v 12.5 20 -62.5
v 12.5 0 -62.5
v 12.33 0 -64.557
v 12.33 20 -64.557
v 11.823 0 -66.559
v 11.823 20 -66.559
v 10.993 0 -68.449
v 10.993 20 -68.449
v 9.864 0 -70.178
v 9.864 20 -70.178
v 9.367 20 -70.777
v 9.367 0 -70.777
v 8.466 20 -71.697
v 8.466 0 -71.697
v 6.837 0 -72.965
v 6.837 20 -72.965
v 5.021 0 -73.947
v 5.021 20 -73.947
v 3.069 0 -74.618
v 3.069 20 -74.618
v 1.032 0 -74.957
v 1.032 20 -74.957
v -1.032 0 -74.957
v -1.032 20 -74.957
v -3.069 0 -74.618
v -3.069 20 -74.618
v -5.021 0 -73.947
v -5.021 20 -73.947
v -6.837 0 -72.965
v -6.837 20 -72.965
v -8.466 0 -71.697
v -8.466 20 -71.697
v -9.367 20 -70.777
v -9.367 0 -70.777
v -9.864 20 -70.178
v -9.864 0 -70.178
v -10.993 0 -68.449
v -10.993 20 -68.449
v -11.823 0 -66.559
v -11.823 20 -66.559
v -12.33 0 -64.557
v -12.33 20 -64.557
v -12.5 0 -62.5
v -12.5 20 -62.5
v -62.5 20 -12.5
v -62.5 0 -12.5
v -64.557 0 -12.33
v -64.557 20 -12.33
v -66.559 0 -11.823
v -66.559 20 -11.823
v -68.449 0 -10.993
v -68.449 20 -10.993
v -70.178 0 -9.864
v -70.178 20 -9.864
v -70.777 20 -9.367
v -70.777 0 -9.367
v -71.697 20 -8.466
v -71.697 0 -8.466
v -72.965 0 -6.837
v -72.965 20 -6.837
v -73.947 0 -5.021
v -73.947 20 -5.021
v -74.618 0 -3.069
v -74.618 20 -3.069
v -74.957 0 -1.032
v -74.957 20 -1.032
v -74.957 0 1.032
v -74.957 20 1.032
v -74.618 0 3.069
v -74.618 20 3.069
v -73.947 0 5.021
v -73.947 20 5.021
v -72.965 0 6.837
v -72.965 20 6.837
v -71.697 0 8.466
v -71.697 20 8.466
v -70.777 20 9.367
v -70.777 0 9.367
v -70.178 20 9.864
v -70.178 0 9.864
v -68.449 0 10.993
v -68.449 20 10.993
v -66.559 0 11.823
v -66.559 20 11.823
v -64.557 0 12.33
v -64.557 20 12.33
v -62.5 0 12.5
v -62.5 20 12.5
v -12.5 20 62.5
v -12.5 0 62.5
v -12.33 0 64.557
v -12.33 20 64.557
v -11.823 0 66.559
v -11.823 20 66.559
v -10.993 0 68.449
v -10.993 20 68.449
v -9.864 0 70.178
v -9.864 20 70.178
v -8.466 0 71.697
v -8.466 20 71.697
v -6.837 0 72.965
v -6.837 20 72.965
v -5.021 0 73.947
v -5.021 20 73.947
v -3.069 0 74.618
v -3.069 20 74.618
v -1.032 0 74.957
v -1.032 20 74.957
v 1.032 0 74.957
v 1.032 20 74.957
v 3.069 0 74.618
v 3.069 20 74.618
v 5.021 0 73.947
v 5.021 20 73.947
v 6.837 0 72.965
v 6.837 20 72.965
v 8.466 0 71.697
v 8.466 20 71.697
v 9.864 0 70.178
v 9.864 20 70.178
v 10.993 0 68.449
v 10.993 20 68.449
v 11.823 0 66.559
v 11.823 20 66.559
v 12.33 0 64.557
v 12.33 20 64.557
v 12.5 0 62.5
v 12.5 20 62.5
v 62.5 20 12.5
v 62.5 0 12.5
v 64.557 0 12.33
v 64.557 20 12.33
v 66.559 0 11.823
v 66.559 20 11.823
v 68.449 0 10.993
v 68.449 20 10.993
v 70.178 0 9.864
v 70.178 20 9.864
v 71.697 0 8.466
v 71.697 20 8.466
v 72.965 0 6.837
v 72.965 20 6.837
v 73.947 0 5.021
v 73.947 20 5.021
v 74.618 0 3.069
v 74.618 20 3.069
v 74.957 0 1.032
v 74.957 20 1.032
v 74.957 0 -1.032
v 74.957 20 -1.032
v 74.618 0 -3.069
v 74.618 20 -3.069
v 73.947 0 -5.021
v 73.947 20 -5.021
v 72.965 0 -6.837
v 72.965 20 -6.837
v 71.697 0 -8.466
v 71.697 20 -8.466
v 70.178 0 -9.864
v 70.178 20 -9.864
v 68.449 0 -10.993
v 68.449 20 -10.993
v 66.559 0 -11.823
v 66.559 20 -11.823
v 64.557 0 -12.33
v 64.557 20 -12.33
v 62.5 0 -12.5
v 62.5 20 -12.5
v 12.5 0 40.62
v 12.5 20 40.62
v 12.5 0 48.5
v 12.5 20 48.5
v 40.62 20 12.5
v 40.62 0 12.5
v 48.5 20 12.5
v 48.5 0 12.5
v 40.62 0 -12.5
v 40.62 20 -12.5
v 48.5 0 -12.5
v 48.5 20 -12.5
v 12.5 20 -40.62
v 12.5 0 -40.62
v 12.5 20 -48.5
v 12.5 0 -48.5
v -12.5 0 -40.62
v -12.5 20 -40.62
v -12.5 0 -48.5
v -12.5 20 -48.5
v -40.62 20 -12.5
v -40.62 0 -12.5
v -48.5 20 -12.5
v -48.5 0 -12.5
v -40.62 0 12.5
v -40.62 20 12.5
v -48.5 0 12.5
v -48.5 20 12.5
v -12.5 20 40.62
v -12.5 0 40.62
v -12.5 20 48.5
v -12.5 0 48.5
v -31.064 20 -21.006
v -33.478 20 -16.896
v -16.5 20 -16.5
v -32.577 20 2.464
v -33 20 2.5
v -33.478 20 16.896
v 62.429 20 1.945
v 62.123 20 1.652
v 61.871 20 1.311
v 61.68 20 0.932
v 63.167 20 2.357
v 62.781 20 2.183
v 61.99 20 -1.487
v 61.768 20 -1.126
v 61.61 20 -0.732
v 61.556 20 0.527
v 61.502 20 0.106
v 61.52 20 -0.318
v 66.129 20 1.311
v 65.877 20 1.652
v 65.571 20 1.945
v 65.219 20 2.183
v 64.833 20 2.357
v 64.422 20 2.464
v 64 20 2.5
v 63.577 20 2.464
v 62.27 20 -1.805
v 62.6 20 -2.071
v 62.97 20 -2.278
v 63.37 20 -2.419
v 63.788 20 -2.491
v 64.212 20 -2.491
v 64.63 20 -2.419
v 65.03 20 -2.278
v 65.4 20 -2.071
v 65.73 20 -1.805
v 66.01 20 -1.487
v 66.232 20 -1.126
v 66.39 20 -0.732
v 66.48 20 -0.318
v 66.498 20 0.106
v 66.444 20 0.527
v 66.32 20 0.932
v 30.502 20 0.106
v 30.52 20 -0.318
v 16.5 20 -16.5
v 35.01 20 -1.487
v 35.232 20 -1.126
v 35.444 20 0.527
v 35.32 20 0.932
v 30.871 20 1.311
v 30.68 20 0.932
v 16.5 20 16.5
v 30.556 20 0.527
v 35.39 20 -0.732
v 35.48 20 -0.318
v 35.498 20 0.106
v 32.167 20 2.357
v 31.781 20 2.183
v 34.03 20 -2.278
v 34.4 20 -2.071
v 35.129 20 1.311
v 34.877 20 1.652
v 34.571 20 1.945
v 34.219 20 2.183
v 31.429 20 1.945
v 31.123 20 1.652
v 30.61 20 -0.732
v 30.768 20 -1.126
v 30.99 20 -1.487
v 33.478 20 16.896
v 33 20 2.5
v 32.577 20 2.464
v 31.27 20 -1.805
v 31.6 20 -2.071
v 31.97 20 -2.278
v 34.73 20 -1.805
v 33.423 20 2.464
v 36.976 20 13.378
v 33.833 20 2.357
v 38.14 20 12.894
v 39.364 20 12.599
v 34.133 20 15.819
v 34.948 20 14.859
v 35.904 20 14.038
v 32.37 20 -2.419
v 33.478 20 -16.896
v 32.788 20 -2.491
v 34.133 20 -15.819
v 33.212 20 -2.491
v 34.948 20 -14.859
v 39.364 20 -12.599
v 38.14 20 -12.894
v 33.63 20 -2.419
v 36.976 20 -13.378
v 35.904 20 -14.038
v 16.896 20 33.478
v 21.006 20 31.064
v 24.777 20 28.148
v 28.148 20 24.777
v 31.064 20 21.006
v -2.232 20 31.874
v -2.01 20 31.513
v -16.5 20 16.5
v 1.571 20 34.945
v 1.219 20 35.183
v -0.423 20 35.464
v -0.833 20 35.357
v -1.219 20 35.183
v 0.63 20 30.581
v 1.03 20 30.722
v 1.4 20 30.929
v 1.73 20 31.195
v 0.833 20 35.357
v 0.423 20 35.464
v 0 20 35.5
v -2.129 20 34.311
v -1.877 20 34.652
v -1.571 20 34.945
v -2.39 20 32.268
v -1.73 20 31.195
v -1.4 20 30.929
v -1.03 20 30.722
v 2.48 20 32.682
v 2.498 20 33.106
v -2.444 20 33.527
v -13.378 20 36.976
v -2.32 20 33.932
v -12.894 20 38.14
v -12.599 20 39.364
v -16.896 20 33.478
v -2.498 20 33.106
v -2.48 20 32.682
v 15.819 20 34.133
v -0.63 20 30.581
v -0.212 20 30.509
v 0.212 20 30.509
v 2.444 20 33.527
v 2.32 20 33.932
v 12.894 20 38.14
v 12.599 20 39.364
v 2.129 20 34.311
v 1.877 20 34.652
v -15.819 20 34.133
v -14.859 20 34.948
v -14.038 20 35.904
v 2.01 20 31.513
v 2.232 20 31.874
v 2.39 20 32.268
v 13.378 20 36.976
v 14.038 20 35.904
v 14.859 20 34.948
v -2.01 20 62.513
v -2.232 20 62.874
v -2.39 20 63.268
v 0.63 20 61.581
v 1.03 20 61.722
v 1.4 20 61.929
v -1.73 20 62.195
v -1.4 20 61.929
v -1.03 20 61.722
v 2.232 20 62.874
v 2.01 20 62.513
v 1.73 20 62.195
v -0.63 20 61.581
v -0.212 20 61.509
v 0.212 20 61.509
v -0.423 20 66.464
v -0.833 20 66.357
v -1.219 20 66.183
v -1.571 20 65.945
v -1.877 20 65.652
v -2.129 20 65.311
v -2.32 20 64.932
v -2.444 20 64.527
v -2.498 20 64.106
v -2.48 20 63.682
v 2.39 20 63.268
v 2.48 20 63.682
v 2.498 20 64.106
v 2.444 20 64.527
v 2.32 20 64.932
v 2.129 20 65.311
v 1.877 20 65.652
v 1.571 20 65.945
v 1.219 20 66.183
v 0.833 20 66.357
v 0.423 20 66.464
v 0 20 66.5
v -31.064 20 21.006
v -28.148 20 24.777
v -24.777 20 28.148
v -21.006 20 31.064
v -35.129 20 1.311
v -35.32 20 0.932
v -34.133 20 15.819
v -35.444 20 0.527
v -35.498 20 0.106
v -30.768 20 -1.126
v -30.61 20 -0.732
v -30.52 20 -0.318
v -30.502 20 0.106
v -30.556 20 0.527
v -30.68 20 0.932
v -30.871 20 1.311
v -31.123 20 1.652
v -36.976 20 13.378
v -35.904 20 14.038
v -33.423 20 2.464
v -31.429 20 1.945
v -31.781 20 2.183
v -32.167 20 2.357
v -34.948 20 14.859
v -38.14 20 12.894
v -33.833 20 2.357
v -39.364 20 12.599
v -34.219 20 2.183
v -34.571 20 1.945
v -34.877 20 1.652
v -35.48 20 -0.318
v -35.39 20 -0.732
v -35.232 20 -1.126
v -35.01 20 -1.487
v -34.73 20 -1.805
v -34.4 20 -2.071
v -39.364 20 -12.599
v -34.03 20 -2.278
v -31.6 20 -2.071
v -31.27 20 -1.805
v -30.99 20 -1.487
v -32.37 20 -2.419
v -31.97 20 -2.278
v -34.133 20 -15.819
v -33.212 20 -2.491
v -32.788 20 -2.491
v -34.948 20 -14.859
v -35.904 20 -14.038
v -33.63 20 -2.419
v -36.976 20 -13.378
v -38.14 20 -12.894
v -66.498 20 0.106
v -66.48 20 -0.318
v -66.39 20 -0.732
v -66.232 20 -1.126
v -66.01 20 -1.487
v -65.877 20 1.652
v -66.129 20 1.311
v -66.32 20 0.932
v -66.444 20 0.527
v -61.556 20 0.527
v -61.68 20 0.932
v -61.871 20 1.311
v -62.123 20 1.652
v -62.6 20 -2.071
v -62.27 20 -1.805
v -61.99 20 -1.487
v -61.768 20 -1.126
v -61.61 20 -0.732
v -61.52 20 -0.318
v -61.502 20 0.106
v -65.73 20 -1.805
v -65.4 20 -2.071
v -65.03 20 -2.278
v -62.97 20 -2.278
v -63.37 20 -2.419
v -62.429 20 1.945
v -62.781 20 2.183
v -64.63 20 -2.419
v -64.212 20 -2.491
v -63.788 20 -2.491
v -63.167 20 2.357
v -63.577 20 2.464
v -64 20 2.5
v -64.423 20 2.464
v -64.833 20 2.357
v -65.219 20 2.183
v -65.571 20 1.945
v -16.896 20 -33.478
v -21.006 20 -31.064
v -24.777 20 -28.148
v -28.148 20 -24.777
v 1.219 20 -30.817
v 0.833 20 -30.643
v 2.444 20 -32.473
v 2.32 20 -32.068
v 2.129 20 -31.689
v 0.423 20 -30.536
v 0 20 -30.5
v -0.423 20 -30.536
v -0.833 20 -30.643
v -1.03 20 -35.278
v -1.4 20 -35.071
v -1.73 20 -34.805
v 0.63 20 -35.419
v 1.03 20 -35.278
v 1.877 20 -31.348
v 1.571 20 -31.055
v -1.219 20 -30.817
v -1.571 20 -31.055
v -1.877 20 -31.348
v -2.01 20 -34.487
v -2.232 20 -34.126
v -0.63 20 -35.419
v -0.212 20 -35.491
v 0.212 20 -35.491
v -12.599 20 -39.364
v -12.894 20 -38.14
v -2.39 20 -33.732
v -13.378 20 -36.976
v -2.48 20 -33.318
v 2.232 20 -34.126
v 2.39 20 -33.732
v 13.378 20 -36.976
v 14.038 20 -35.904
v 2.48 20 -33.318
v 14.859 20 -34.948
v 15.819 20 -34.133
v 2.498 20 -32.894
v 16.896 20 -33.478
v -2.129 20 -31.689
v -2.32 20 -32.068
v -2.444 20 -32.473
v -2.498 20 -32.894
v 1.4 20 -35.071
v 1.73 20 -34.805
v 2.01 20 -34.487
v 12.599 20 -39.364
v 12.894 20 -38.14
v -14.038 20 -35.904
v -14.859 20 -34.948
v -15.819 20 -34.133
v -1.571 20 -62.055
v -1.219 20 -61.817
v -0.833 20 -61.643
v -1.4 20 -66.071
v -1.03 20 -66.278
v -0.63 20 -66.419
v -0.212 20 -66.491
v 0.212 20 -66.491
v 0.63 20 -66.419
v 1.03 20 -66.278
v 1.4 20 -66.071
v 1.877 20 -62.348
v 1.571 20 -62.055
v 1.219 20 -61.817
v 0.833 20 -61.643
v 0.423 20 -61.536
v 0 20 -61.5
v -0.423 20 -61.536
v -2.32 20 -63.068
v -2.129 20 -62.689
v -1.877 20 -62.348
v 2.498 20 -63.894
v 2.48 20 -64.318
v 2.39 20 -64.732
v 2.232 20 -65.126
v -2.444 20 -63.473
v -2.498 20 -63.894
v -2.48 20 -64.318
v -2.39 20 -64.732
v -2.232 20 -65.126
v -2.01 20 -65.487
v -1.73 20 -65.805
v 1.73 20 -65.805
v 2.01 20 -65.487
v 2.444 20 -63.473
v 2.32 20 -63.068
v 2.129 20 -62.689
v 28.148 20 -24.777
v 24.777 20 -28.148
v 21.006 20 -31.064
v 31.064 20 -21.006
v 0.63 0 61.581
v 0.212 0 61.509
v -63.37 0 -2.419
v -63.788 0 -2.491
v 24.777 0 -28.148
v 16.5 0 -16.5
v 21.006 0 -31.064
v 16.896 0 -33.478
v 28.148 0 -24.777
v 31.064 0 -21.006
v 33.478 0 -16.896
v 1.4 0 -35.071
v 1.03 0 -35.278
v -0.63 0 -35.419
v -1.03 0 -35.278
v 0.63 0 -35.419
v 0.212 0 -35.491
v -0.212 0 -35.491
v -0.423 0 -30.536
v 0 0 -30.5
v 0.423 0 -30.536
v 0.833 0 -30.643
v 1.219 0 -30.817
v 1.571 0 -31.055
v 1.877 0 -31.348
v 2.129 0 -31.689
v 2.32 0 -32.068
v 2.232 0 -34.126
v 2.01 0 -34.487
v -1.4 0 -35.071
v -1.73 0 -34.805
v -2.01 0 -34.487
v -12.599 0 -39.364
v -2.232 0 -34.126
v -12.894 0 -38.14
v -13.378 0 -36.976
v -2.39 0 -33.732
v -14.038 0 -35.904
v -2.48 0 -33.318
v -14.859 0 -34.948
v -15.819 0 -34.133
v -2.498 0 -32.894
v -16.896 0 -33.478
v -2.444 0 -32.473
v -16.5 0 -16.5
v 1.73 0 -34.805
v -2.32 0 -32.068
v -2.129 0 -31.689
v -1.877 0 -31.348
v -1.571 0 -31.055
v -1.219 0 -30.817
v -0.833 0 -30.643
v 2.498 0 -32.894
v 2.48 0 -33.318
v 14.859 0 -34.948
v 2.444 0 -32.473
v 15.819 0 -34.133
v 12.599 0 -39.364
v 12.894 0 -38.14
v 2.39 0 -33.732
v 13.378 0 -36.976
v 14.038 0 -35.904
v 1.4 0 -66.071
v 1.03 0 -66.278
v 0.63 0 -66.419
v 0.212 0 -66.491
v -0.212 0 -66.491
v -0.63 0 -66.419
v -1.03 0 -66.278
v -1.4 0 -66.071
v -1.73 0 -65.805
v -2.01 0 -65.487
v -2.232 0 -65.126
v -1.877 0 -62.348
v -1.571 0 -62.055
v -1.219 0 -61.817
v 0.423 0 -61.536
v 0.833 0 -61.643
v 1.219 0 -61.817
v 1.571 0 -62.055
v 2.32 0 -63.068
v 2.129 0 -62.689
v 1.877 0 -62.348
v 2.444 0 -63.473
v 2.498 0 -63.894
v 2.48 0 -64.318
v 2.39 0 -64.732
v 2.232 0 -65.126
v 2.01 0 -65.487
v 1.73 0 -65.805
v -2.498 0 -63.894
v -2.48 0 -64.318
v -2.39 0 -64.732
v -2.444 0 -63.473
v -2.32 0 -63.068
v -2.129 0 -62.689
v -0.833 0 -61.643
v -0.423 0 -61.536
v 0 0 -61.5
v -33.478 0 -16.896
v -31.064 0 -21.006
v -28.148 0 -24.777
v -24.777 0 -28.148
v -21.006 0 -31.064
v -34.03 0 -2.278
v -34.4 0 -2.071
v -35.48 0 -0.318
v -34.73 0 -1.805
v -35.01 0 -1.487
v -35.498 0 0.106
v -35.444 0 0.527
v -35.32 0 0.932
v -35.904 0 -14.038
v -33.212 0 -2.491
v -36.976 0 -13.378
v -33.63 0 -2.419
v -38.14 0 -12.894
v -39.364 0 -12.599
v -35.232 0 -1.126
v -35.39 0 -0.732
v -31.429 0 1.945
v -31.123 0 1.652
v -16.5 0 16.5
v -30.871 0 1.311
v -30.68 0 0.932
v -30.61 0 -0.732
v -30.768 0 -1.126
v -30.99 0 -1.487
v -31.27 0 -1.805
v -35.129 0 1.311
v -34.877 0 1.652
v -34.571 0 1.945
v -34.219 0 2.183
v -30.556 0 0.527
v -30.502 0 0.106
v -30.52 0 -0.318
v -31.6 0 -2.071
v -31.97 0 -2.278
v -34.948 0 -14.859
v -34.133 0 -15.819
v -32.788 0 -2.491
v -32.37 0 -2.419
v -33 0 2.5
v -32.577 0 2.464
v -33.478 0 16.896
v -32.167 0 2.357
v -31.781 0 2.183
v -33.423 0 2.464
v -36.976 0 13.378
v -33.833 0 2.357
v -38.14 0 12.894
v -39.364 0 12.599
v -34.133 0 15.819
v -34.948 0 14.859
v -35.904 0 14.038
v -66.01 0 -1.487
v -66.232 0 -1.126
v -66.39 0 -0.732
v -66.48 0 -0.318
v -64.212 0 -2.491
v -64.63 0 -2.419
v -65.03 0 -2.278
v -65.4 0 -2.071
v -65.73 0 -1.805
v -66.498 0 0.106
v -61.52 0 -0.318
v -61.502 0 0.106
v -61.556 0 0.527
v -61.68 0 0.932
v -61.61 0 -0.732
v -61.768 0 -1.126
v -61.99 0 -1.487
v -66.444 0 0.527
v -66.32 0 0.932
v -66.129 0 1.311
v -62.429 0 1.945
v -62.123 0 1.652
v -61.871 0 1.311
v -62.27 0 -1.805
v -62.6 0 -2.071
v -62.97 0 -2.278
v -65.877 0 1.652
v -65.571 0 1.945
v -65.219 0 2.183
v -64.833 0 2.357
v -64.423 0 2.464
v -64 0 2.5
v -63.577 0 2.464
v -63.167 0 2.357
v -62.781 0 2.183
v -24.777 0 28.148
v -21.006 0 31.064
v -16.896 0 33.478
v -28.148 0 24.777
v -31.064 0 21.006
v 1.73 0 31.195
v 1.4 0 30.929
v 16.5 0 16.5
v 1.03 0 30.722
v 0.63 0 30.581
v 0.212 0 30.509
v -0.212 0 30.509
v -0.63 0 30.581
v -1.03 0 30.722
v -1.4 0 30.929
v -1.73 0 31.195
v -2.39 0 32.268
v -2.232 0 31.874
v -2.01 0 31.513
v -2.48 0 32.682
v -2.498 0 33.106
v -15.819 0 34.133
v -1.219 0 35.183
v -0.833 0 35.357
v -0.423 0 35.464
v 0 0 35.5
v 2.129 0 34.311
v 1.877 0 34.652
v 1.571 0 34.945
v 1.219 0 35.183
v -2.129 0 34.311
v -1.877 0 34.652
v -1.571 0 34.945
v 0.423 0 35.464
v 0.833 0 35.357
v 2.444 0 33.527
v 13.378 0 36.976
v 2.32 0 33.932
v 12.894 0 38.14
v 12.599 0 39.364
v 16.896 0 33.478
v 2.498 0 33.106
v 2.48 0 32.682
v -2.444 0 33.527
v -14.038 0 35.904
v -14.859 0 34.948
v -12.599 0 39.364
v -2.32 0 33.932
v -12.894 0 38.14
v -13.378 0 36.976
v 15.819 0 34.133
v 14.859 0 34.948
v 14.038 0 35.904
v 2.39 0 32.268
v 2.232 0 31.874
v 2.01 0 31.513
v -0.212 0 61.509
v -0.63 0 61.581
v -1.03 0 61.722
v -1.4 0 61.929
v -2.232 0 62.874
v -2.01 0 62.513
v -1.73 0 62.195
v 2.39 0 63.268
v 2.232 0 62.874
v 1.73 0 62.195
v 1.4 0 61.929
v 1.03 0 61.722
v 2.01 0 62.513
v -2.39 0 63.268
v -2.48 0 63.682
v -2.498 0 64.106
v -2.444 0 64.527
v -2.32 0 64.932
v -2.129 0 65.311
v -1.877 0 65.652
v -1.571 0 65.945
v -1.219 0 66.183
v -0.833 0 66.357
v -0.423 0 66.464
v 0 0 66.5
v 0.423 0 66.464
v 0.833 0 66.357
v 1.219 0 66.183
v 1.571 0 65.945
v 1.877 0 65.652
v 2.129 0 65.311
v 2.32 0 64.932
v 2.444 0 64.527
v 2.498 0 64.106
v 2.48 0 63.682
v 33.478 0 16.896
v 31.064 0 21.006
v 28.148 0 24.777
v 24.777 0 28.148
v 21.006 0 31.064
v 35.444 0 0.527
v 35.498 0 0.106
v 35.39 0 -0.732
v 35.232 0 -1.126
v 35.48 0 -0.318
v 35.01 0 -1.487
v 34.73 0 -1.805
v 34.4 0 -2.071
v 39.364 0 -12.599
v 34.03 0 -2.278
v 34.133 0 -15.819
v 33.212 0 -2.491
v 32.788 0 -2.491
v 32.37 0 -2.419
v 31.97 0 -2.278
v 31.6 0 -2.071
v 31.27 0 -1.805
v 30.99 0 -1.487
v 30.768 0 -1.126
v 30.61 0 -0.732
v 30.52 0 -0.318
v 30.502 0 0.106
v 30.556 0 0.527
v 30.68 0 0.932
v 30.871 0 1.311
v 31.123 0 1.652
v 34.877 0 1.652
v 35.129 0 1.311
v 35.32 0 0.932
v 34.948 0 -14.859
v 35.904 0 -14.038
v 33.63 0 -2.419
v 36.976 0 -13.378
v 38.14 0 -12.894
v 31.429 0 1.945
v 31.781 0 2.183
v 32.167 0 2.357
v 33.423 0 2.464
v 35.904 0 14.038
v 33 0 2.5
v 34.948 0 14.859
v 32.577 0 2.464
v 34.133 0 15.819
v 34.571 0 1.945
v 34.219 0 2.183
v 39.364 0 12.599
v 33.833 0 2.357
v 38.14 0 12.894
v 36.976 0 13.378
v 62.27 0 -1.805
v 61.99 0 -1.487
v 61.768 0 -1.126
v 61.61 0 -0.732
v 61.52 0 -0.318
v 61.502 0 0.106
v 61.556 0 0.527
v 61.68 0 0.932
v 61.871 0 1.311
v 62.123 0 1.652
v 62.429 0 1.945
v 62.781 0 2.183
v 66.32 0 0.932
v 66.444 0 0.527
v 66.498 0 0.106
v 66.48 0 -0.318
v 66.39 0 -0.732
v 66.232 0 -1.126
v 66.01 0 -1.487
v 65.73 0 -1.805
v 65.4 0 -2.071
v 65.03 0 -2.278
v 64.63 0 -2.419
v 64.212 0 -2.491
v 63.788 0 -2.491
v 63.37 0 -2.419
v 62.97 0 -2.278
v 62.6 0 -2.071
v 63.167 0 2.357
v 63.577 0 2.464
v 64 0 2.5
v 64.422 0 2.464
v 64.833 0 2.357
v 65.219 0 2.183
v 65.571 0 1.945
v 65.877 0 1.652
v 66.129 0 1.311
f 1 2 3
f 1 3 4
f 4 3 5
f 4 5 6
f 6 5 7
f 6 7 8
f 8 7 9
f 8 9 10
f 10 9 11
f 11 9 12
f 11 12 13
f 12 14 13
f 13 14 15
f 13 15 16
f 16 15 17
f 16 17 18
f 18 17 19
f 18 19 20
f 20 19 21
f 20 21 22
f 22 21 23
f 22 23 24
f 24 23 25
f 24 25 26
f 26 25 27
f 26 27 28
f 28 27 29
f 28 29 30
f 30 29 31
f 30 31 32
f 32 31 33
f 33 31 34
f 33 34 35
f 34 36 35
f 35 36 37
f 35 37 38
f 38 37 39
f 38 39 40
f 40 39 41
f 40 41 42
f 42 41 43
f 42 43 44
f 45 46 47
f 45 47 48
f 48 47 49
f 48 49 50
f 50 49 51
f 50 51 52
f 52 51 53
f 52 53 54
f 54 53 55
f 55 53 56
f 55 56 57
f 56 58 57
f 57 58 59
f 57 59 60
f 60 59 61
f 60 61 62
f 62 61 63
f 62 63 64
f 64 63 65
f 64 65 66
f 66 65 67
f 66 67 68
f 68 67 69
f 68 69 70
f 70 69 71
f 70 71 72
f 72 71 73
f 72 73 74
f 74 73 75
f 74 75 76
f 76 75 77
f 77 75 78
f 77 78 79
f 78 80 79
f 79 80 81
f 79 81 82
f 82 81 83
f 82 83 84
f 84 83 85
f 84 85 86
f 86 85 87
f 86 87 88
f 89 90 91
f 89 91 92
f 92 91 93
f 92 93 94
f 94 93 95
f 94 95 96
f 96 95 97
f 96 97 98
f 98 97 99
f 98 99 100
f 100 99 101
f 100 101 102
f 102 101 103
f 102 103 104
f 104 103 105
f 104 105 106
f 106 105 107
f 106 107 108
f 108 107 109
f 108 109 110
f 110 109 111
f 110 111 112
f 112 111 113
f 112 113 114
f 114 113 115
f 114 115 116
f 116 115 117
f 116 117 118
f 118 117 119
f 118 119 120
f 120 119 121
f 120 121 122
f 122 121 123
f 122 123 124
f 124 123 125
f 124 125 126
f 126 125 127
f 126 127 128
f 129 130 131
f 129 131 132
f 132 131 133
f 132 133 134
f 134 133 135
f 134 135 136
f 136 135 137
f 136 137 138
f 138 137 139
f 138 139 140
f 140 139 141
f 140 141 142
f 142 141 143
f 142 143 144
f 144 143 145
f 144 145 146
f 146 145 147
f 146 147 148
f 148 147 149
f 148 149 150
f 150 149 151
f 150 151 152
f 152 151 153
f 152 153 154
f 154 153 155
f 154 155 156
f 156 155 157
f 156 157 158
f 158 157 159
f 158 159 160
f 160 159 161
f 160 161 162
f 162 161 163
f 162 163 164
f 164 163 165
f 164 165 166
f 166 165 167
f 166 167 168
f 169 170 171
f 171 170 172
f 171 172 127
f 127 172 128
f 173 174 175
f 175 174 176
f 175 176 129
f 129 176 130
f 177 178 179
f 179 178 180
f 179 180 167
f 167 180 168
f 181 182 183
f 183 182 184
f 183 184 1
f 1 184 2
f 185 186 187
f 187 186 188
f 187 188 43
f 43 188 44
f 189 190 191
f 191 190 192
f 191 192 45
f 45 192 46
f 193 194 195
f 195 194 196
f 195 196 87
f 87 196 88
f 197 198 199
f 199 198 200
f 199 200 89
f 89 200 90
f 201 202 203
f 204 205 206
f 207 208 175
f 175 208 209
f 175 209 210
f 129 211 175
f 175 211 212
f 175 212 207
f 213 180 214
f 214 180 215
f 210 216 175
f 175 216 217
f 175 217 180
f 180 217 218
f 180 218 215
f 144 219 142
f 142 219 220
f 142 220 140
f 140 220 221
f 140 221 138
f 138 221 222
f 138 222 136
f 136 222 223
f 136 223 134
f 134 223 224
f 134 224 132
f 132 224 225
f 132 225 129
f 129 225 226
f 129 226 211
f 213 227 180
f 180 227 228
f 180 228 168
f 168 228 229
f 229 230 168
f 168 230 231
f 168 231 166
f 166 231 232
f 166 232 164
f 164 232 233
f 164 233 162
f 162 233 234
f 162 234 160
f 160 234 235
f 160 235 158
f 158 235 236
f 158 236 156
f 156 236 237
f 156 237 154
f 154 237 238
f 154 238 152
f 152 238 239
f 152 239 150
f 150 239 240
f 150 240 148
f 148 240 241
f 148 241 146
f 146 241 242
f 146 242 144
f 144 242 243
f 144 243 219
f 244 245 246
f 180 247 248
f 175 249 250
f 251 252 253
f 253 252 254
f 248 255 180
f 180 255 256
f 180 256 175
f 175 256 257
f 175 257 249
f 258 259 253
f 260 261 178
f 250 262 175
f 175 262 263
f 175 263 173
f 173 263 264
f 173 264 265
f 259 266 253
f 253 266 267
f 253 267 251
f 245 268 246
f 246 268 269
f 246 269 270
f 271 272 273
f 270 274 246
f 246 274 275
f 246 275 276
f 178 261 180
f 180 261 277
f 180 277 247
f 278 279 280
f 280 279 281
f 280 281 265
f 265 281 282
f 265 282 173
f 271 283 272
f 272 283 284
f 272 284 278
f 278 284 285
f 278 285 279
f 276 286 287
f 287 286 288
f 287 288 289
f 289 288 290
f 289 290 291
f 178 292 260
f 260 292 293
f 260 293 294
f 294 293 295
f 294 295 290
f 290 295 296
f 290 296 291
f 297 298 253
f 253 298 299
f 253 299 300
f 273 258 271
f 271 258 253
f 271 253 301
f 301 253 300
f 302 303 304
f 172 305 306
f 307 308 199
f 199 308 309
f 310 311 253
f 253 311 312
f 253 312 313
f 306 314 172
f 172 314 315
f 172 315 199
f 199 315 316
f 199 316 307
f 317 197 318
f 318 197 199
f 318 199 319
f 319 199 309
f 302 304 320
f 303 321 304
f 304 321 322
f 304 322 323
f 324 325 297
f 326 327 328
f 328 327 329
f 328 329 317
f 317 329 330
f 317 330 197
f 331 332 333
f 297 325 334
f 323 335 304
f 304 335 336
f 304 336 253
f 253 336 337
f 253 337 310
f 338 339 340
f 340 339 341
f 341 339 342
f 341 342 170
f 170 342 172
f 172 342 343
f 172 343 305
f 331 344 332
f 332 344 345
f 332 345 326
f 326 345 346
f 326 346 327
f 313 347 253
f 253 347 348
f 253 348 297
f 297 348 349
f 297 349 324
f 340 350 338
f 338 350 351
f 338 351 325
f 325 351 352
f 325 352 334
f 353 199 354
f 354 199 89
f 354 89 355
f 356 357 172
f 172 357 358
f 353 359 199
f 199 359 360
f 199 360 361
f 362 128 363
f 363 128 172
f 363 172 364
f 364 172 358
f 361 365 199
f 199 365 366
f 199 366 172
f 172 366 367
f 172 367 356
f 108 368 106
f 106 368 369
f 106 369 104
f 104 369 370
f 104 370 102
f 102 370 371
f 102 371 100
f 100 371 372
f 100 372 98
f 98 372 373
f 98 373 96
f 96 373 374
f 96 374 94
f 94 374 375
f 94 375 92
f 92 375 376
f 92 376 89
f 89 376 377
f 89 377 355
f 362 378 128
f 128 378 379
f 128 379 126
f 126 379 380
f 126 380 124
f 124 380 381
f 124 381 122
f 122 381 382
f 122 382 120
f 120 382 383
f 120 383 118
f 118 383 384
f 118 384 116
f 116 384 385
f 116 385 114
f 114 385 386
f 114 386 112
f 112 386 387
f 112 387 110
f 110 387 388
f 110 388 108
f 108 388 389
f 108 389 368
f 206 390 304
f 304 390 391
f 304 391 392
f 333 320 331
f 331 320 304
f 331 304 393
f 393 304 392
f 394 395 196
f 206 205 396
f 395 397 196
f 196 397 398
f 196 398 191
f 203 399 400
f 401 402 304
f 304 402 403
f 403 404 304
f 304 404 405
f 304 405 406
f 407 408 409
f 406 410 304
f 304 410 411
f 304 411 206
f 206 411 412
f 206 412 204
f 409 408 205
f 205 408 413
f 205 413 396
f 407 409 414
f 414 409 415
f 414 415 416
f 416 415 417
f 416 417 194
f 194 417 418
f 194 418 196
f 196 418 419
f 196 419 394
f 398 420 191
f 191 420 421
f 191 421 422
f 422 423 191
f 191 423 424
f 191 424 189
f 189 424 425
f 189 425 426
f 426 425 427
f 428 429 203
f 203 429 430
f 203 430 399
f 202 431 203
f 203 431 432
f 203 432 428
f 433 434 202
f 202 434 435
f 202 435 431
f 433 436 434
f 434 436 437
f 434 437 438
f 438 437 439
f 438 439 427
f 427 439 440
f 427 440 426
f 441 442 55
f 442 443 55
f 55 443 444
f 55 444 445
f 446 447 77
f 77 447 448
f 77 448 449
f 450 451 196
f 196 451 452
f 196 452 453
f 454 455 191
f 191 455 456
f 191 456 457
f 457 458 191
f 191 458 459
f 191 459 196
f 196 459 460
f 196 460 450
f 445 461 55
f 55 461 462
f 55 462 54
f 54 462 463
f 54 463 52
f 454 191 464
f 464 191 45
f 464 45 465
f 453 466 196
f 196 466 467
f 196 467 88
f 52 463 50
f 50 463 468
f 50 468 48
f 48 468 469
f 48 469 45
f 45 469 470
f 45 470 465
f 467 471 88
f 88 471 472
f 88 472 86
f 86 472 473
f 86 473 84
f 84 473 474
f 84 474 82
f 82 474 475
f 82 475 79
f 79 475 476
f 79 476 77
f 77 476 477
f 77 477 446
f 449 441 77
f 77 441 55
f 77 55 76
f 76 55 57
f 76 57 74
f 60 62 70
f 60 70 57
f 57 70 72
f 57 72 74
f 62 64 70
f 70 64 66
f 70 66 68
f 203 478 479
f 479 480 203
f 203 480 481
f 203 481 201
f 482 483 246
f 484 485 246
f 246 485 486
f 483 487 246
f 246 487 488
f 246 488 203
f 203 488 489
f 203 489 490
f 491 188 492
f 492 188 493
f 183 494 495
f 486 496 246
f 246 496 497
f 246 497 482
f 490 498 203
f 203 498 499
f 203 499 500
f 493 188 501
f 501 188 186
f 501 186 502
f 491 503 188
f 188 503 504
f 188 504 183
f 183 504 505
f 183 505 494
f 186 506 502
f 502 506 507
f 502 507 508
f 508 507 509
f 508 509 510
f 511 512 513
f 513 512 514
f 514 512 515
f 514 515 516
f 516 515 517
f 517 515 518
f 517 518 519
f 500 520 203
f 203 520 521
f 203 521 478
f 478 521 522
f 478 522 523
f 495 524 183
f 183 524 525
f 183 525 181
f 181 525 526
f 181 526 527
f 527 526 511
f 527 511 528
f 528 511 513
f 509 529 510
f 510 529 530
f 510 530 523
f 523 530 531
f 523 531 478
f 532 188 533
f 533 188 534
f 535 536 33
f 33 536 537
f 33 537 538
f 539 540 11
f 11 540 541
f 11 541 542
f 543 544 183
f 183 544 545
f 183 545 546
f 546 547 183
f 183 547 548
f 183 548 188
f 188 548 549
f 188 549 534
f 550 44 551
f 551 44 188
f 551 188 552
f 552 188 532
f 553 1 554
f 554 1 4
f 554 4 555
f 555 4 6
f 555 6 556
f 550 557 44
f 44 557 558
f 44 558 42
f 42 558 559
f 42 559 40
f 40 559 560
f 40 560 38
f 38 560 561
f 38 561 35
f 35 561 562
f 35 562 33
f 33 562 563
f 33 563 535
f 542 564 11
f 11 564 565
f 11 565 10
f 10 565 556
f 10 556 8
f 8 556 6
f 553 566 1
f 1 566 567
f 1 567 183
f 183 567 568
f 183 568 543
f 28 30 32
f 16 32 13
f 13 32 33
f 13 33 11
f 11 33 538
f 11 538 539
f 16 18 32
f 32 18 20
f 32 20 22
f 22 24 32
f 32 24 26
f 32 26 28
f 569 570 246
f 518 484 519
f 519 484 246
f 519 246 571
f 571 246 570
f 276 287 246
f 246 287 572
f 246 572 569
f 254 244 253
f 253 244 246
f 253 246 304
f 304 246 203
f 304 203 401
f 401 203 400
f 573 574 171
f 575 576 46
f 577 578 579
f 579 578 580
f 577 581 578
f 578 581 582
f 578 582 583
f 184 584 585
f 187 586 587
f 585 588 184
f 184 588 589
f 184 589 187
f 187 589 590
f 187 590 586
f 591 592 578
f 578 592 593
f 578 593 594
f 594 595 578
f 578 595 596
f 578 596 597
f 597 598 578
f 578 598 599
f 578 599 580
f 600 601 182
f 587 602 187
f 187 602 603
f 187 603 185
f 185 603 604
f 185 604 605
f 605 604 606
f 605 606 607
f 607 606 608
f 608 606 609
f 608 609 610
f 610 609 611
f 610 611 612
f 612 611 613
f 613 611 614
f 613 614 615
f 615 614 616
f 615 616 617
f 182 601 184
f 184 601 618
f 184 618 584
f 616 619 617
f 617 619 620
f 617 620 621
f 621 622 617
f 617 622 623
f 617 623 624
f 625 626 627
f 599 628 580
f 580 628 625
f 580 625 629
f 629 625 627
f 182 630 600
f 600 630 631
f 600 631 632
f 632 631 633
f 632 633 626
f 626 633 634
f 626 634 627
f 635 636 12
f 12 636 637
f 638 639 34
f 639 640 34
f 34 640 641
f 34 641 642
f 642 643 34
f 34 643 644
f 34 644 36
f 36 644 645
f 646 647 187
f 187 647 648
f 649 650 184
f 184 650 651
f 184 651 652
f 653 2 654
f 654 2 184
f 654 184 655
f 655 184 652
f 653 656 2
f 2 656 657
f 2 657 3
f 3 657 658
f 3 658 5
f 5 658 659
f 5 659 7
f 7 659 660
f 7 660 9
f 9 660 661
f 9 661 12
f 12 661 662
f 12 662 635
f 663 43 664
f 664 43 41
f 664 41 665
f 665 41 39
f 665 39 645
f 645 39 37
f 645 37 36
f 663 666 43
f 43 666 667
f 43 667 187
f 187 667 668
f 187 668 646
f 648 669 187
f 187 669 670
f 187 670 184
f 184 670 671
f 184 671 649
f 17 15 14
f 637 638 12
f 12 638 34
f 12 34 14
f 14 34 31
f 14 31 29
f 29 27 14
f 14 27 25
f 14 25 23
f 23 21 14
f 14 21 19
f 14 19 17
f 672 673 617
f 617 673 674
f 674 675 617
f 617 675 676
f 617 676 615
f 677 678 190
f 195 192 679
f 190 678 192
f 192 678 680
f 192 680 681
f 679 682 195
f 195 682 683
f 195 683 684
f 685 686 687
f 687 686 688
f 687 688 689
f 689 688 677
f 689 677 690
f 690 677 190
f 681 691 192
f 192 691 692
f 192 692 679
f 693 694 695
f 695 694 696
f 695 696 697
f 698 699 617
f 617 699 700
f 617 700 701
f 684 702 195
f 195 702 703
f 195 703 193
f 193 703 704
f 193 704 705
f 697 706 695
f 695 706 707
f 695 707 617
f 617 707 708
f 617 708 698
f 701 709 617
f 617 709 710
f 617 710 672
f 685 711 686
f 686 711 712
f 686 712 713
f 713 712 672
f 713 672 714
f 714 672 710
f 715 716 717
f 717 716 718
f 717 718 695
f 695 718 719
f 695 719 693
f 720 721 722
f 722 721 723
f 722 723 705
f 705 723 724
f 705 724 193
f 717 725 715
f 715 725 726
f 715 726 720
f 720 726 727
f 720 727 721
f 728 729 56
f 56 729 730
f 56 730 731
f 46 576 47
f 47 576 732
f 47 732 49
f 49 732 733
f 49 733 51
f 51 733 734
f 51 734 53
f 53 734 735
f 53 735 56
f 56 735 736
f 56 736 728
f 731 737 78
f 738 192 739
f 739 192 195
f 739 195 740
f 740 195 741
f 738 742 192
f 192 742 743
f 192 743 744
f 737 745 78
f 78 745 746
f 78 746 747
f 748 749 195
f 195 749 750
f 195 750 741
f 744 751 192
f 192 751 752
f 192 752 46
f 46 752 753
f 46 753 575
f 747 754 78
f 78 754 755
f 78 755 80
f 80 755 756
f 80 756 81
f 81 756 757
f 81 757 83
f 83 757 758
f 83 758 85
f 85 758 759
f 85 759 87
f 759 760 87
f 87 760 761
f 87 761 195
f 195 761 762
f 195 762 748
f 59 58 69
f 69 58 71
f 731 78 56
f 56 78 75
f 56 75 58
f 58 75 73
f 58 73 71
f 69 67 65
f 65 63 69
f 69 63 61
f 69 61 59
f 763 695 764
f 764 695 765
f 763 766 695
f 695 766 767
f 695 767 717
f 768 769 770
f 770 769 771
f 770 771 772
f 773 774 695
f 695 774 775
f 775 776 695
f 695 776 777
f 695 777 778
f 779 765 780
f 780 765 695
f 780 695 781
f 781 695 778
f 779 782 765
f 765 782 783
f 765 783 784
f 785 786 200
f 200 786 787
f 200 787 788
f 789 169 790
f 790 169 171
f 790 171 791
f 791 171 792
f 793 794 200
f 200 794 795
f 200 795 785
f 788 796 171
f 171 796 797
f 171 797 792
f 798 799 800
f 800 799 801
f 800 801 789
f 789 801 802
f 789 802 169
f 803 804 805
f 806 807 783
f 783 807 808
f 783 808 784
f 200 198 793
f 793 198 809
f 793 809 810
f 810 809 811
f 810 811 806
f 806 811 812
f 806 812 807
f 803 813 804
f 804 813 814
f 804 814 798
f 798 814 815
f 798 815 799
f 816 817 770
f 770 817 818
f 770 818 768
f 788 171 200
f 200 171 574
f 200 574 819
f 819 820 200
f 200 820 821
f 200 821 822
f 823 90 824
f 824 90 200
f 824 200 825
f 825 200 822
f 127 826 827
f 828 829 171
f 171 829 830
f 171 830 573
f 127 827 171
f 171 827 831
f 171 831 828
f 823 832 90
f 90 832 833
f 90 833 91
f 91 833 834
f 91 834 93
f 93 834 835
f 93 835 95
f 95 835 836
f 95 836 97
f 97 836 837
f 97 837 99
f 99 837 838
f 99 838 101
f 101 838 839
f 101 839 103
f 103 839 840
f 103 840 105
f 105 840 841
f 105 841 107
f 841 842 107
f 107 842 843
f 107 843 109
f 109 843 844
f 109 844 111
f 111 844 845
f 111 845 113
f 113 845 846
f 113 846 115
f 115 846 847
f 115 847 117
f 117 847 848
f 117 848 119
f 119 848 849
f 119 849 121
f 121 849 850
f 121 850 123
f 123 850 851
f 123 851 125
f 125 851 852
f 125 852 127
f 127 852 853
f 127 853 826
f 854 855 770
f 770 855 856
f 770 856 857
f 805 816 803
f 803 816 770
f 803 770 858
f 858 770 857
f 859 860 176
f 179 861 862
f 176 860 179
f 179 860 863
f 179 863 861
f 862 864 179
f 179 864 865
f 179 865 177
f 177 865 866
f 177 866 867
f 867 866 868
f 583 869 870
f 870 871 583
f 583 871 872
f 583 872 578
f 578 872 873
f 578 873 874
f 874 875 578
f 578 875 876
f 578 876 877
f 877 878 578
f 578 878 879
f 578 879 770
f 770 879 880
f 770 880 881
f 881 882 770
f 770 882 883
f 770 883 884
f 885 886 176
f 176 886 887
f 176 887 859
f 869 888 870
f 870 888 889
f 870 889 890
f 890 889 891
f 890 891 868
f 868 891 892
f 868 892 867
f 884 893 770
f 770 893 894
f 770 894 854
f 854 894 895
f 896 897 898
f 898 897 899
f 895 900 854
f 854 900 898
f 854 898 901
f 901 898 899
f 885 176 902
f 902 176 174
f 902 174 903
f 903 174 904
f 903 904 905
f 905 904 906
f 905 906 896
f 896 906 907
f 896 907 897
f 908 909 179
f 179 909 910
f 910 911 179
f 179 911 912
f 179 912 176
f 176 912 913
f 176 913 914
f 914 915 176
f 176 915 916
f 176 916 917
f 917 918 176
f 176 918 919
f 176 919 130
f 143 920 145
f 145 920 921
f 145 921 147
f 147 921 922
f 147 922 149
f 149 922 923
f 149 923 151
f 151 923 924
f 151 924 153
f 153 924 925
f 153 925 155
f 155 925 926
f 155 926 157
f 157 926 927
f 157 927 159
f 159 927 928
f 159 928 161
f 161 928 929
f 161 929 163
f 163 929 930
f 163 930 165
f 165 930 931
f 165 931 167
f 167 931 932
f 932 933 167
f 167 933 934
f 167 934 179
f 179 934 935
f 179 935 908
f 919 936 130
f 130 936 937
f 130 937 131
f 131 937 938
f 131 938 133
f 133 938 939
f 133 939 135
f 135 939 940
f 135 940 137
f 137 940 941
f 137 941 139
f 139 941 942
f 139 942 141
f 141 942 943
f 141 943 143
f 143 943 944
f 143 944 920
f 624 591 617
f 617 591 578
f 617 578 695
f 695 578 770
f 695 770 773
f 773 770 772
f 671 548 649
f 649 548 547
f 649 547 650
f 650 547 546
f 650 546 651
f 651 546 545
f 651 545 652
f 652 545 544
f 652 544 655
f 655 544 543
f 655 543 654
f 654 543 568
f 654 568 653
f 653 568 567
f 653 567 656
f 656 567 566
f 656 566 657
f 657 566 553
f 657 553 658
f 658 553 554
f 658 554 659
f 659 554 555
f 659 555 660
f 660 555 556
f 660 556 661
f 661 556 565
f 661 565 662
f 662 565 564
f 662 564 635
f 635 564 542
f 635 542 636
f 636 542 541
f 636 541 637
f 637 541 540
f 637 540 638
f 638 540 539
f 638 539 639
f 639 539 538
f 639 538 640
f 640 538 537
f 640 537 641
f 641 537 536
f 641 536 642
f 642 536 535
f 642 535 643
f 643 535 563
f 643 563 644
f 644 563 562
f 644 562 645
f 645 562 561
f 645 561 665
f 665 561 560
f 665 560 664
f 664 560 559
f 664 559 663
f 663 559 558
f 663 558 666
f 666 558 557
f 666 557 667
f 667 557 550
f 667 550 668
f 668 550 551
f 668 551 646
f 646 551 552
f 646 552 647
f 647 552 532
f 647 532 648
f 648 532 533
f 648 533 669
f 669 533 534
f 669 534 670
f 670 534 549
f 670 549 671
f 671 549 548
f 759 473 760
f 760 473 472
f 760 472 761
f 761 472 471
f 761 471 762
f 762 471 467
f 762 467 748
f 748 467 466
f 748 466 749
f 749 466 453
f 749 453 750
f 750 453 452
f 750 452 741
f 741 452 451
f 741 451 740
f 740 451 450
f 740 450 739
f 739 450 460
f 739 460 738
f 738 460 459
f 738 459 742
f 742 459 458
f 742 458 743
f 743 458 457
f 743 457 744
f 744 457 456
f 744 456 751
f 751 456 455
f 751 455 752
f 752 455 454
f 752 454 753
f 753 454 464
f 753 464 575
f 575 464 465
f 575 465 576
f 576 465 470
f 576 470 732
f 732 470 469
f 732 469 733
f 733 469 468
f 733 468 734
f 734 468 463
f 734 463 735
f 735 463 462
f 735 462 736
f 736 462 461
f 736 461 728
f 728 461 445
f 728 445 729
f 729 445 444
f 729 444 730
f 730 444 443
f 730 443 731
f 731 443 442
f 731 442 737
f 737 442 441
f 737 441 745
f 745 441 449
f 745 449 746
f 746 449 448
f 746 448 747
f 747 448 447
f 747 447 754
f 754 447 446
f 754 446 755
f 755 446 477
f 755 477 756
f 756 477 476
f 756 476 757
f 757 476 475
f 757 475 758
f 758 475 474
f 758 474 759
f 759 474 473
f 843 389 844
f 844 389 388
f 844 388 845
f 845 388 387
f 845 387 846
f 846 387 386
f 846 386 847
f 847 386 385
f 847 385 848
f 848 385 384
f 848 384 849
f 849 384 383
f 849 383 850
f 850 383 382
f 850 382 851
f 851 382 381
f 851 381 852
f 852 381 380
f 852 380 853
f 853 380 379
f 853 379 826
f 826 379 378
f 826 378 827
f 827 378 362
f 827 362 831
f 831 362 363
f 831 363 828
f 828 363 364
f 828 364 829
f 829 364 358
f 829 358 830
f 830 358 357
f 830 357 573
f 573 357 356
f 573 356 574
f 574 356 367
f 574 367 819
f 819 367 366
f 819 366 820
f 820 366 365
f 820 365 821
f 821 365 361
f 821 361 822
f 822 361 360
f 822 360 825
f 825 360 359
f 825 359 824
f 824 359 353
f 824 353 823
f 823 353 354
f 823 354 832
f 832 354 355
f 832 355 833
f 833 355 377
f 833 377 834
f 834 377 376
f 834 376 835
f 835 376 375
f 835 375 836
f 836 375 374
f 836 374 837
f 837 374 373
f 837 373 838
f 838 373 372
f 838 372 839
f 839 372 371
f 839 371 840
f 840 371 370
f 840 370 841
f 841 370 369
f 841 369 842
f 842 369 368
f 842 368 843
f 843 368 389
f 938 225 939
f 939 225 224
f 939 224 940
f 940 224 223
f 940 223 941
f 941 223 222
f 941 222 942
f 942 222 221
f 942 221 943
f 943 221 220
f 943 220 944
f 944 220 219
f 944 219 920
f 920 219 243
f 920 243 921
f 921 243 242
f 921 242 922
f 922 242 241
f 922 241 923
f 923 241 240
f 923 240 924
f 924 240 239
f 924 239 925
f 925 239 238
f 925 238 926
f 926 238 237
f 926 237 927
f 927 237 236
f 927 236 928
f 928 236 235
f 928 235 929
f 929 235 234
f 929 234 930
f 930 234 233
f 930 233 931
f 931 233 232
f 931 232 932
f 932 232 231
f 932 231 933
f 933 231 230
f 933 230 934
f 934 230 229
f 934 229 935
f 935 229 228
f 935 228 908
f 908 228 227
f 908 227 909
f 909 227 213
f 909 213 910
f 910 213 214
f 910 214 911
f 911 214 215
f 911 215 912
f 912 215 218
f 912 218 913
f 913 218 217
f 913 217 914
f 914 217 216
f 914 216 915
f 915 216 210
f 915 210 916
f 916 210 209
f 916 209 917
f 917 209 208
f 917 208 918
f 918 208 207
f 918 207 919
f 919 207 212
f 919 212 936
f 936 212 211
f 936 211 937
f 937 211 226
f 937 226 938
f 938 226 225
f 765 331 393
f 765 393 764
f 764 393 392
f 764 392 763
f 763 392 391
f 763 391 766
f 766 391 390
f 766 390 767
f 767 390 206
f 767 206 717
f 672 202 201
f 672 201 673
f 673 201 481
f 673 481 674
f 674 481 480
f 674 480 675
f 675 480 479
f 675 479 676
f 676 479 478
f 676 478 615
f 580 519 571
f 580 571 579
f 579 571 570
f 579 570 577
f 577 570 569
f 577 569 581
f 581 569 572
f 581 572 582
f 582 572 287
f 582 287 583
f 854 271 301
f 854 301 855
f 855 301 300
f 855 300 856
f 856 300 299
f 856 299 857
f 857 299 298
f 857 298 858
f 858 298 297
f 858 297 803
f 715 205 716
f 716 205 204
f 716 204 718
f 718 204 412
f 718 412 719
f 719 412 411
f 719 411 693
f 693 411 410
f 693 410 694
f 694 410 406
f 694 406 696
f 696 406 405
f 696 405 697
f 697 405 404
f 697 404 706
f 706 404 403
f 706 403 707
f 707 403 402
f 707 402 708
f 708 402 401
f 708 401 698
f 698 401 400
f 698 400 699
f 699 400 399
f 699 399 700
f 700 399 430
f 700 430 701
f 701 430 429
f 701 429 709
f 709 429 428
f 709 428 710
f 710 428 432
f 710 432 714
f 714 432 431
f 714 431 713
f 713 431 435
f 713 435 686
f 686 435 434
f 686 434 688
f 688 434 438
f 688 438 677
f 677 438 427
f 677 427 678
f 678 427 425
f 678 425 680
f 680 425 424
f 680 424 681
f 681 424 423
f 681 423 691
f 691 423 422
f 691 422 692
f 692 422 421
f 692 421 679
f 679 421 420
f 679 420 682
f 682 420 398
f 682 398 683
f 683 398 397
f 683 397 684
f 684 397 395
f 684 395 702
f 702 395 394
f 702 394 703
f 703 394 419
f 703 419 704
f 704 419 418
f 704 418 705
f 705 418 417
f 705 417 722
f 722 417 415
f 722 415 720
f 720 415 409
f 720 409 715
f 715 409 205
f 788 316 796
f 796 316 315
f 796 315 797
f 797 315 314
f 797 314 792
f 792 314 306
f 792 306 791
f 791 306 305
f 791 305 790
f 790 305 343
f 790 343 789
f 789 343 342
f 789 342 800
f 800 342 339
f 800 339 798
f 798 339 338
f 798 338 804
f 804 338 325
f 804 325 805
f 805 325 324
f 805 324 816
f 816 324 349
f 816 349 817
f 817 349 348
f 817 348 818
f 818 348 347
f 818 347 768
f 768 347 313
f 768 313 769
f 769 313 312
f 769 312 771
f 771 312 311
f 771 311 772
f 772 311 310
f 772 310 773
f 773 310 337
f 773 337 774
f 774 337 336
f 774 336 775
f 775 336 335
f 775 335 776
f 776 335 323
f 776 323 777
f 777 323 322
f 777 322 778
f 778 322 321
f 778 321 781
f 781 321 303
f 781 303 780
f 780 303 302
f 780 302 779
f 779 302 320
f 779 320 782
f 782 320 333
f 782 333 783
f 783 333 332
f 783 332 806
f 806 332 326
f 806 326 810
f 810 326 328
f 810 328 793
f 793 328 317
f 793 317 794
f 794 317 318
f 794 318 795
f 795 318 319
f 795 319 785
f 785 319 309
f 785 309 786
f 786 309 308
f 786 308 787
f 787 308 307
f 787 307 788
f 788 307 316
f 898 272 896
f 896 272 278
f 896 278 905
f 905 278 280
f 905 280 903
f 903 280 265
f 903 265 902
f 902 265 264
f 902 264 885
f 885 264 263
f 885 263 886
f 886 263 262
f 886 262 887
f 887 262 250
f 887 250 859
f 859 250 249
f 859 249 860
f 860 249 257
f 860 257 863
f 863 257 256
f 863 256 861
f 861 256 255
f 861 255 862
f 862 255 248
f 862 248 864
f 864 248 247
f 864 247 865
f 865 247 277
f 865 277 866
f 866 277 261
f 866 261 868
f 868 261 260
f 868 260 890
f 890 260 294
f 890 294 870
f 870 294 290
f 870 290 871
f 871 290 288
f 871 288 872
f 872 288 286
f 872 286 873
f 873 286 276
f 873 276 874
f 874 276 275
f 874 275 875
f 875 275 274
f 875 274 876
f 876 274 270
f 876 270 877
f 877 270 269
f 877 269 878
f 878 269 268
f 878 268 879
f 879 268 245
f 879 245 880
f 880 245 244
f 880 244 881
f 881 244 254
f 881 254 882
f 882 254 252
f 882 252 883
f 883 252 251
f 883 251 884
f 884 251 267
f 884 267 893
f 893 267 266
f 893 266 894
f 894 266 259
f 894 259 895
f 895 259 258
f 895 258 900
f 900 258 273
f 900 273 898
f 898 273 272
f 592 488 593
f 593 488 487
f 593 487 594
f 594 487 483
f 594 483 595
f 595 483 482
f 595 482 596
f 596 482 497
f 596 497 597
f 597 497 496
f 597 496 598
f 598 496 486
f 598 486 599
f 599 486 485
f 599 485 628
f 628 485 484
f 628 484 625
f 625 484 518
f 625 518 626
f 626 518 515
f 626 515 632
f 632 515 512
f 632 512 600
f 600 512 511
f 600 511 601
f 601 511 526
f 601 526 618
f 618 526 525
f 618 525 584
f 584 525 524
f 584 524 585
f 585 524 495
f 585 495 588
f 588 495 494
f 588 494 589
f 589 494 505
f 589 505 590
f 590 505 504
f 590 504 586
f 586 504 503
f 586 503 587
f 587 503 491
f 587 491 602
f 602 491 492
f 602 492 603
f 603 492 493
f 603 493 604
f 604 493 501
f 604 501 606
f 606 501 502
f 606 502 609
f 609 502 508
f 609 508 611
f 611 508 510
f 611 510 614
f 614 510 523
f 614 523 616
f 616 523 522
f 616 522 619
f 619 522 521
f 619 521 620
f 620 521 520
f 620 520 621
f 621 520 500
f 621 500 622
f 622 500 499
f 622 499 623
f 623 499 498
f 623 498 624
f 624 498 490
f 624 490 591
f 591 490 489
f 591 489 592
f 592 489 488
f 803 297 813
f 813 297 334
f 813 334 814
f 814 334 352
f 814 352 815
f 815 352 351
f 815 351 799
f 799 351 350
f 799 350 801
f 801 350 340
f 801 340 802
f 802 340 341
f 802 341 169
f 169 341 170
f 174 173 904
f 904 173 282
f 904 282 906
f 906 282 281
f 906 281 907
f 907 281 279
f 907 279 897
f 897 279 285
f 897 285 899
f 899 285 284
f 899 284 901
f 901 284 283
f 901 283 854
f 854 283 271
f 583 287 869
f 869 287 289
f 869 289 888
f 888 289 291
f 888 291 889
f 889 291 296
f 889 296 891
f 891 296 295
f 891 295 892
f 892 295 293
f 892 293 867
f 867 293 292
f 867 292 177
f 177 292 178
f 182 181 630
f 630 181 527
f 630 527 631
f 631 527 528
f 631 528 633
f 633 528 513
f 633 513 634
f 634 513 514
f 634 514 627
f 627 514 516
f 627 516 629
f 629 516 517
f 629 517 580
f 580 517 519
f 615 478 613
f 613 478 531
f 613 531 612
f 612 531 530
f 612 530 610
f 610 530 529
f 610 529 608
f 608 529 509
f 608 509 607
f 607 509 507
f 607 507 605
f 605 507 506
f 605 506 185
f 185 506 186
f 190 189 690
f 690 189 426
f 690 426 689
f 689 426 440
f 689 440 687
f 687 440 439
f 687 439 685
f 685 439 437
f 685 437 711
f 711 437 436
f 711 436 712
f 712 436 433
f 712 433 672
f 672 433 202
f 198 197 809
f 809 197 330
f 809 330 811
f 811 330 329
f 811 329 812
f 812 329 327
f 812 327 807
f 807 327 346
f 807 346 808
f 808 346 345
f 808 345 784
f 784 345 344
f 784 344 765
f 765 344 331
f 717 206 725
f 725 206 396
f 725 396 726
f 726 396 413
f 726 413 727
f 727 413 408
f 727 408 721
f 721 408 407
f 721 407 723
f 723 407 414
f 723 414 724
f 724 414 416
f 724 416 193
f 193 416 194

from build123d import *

# Parameters (mm, degrees)
SKETCH2_W           = 25
SKETCH2_H           = 62.5
SKETCH2_H_2         = 25
SKETCH2_W_2         = 62.5
BOSS_EXTRUDE3_DEPTH = 20
FILLET1_R           = 10
FILLET2_R           = 10
FILLET3_R           = 10
FILLET4_R           = 10
FILLET5_RADIUS      = 12.5
FILLET5_LENGTH      = 20
FILLET6_RADIUS      = 12.5
FILLET6_LENGTH      = 20
FILLET7_RADIUS      = 12.5
FILLET7_LENGTH      = 20
FILLET8_RADIUS      = 12.5
FILLET8_LENGTH      = 20
SKETCH4_R           = 2.5
CUT_EXTRUDE2_DEPTH  = 25
SKETCH5_R           = 37.5
BOSS_EXTRUDE4_DEPTH = 20
SKETCH7_R           = 2.5
CUT_EXTRUDE3_DEPTH  = 25
FILLET9_R           = 8


with BuildPart() as part:
    # Sketch2 → Boss-Extrude3 (new body)
    with BuildSketch(Plane(origin=(0, 0, 0), x_dir=(1, 0, 0), z_dir=(0, 1, 0))):
        with Locations((0, -43.75)):
            Rectangle(SKETCH2_W, SKETCH2_H)
        Rectangle(SKETCH2_W, SKETCH2_H_2)
        with Locations((0, 43.75)):
            Rectangle(SKETCH2_W, SKETCH2_H)
        with Locations((-43.75, 0)):
            Rectangle(SKETCH2_W_2, SKETCH2_H_2)
        with Locations((43.75, 0)):
            Rectangle(SKETCH2_W_2, SKETCH2_H_2)
    extrude(amount=BOSS_EXTRUDE3_DEPTH)

    # Fillet1
    fillet1_edges = [part.edges().sort_by_distance(p)[0] for p in [
        (-12.5, 10, 12.5),
    ]]
    fillet(fillet1_edges, radius=FILLET1_R)

    # Fillet2
    fillet2_edges = [part.edges().sort_by_distance(p)[0] for p in [
        (12.5, 10, 12.5),
    ]]
    fillet(fillet2_edges, radius=FILLET2_R)

    # Fillet3
    fillet3_edges = [part.edges().sort_by_distance(p)[0] for p in [
        (-12.5, 10, -12.5),
    ]]
    fillet(fillet3_edges, radius=FILLET3_R)

    # Fillet4
    fillet4_edges = [part.edges().sort_by_distance(p)[0] for p in [
        (12.5, 10, -12.5),
    ]]
    fillet(fillet4_edges, radius=FILLET4_R)

    # Fillet5: full round fillet: the end face becomes a half cylinder, R = half its width
    fillet5_face = Plane((75, 10, 0), x_dir=(0, 1, 0), z_dir=(1, 0, 0))  # on the end face: x along it, z out of the body
    fillet5_slab = fillet5_face.offset(-FILLET5_RADIUS / 2) * Box(FILLET5_LENGTH, 2 * FILLET5_RADIUS, FILLET5_RADIUS, mode=Mode.PRIVATE)  # the body's end, R deep
    fillet5_round = Plane((62.5, 10, 0), x_dir=(1, 0, 0), z_dir=(0, 1, 0)) * Cylinder(FILLET5_RADIUS, FILLET5_LENGTH, mode=Mode.PRIVATE)  # its axis R under the face
    add(fillet5_slab - fillet5_round, mode=Mode.SUBTRACT)

    # Fillet6: full round fillet: the end face becomes a half cylinder, R = half its width
    fillet6_face = Plane((0, 10, 75), x_dir=(0, 1, 0), z_dir=(0, 0, 1))  # on the end face: x along it, z out of the body
    fillet6_slab = fillet6_face.offset(-FILLET6_RADIUS / 2) * Box(FILLET6_LENGTH, 2 * FILLET6_RADIUS, FILLET6_RADIUS, mode=Mode.PRIVATE)  # the body's end, R deep
    fillet6_round = Plane((0, 10, 62.5), x_dir=(0, 0, 1), z_dir=(0, 1, 0)) * Cylinder(FILLET6_RADIUS, FILLET6_LENGTH, mode=Mode.PRIVATE)  # its axis R under the face
    add(fillet6_slab - fillet6_round, mode=Mode.SUBTRACT)

    # Fillet7: full round fillet: the end face becomes a half cylinder, R = half its width
    fillet7_face = Plane((-75, 10, 0), x_dir=(0, 1, 0), z_dir=(-1, 0, 0))  # on the end face: x along it, z out of the body
    fillet7_slab = fillet7_face.offset(-FILLET7_RADIUS / 2) * Box(FILLET7_LENGTH, 2 * FILLET7_RADIUS, FILLET7_RADIUS, mode=Mode.PRIVATE)  # the body's end, R deep
    fillet7_round = Plane((-62.5, 10, 0), x_dir=(-1, 0, 0), z_dir=(0, 1, 0)) * Cylinder(FILLET7_RADIUS, FILLET7_LENGTH, mode=Mode.PRIVATE)  # its axis R under the face
    add(fillet7_slab - fillet7_round, mode=Mode.SUBTRACT)

    # Fillet8: full round fillet: the end face becomes a half cylinder, R = half its width
    fillet8_face = Plane((0, 10, -75), x_dir=(0, 1, 0), z_dir=(0, 0, -1))  # on the end face: x along it, z out of the body
    fillet8_slab = fillet8_face.offset(-FILLET8_RADIUS / 2) * Box(FILLET8_LENGTH, 2 * FILLET8_RADIUS, FILLET8_RADIUS, mode=Mode.PRIVATE)  # the body's end, R deep
    fillet8_round = Plane((0, 10, -62.5), x_dir=(0, 0, -1), z_dir=(0, 1, 0)) * Cylinder(FILLET8_RADIUS, FILLET8_LENGTH, mode=Mode.PRIVATE)  # its axis R under the face
    add(fillet8_slab - fillet8_round, mode=Mode.SUBTRACT)

    # Sketch4 → Cut-Extrude2 (cut)
    with BuildSketch(Plane(origin=(0, 20, 0), x_dir=(1, 0, 0), z_dir=(0, 1, 0))):
        with Locations(Location((64, 0, 0), (0, 0, 270))):
            Circle(SKETCH4_R)
        with Locations(Location((0, -64, 0), (0, 0, 270))):
            Circle(SKETCH4_R)
        with Locations(Location((-64, 0, 0), (0, 0, 270))):
            Circle(SKETCH4_R)
        with Locations(Location((0, 64, 0), (0, 0, 270))):
            Circle(SKETCH4_R)
    extrude(amount=-CUT_EXTRUDE2_DEPTH, mode=Mode.SUBTRACT)

    # Sketch5 → Boss-Extrude4 (add)
    with BuildSketch(Plane(origin=(0, 20, 0), x_dir=(1, 0, 0), z_dir=(0, 1, 0))):
        Circle(SKETCH5_R)
    extrude(amount=-BOSS_EXTRUDE4_DEPTH)

    # Sketch7 → Cut-Extrude3 (cut)
    with BuildSketch(Plane(origin=(0, 20, 0), x_dir=(1, 0, 0), z_dir=(0, 1, 0))):
        with Locations(Location((0, 33, 0), (0, 0, 270))):
            Circle(SKETCH7_R)
        with Locations(Location((33, 0, 0), (0, 0, 270))):
            Circle(SKETCH7_R)
        with Locations(Location((0, -33, 0), (0, 0, 270))):
            Circle(SKETCH7_R)
        with Locations(Location((-33, 0, 0), (0, 0, 270))):
            Circle(SKETCH7_R)
    extrude(amount=-CUT_EXTRUDE3_DEPTH, mode=Mode.SUBTRACT)

    # Fillet9
    fillet9_edges = [part.edges().sort_by_distance(p)[0] for p in [
        (12.5, 10, 35.355339059),
        (35.355339059, 10, 12.5),
        (35.355339059, 10, -12.5),
        (12.5, 10, -35.355339059),
        (-35.355339059, 10, 12.5),
        (-12.5, 10, 35.355339059),
        (-12.5, 10, -35.355339059),
        (-35.355339059, 10, -12.5),
    ]]
    fillet(fillet9_edges, radius=FILLET9_R)


solid = part.part
